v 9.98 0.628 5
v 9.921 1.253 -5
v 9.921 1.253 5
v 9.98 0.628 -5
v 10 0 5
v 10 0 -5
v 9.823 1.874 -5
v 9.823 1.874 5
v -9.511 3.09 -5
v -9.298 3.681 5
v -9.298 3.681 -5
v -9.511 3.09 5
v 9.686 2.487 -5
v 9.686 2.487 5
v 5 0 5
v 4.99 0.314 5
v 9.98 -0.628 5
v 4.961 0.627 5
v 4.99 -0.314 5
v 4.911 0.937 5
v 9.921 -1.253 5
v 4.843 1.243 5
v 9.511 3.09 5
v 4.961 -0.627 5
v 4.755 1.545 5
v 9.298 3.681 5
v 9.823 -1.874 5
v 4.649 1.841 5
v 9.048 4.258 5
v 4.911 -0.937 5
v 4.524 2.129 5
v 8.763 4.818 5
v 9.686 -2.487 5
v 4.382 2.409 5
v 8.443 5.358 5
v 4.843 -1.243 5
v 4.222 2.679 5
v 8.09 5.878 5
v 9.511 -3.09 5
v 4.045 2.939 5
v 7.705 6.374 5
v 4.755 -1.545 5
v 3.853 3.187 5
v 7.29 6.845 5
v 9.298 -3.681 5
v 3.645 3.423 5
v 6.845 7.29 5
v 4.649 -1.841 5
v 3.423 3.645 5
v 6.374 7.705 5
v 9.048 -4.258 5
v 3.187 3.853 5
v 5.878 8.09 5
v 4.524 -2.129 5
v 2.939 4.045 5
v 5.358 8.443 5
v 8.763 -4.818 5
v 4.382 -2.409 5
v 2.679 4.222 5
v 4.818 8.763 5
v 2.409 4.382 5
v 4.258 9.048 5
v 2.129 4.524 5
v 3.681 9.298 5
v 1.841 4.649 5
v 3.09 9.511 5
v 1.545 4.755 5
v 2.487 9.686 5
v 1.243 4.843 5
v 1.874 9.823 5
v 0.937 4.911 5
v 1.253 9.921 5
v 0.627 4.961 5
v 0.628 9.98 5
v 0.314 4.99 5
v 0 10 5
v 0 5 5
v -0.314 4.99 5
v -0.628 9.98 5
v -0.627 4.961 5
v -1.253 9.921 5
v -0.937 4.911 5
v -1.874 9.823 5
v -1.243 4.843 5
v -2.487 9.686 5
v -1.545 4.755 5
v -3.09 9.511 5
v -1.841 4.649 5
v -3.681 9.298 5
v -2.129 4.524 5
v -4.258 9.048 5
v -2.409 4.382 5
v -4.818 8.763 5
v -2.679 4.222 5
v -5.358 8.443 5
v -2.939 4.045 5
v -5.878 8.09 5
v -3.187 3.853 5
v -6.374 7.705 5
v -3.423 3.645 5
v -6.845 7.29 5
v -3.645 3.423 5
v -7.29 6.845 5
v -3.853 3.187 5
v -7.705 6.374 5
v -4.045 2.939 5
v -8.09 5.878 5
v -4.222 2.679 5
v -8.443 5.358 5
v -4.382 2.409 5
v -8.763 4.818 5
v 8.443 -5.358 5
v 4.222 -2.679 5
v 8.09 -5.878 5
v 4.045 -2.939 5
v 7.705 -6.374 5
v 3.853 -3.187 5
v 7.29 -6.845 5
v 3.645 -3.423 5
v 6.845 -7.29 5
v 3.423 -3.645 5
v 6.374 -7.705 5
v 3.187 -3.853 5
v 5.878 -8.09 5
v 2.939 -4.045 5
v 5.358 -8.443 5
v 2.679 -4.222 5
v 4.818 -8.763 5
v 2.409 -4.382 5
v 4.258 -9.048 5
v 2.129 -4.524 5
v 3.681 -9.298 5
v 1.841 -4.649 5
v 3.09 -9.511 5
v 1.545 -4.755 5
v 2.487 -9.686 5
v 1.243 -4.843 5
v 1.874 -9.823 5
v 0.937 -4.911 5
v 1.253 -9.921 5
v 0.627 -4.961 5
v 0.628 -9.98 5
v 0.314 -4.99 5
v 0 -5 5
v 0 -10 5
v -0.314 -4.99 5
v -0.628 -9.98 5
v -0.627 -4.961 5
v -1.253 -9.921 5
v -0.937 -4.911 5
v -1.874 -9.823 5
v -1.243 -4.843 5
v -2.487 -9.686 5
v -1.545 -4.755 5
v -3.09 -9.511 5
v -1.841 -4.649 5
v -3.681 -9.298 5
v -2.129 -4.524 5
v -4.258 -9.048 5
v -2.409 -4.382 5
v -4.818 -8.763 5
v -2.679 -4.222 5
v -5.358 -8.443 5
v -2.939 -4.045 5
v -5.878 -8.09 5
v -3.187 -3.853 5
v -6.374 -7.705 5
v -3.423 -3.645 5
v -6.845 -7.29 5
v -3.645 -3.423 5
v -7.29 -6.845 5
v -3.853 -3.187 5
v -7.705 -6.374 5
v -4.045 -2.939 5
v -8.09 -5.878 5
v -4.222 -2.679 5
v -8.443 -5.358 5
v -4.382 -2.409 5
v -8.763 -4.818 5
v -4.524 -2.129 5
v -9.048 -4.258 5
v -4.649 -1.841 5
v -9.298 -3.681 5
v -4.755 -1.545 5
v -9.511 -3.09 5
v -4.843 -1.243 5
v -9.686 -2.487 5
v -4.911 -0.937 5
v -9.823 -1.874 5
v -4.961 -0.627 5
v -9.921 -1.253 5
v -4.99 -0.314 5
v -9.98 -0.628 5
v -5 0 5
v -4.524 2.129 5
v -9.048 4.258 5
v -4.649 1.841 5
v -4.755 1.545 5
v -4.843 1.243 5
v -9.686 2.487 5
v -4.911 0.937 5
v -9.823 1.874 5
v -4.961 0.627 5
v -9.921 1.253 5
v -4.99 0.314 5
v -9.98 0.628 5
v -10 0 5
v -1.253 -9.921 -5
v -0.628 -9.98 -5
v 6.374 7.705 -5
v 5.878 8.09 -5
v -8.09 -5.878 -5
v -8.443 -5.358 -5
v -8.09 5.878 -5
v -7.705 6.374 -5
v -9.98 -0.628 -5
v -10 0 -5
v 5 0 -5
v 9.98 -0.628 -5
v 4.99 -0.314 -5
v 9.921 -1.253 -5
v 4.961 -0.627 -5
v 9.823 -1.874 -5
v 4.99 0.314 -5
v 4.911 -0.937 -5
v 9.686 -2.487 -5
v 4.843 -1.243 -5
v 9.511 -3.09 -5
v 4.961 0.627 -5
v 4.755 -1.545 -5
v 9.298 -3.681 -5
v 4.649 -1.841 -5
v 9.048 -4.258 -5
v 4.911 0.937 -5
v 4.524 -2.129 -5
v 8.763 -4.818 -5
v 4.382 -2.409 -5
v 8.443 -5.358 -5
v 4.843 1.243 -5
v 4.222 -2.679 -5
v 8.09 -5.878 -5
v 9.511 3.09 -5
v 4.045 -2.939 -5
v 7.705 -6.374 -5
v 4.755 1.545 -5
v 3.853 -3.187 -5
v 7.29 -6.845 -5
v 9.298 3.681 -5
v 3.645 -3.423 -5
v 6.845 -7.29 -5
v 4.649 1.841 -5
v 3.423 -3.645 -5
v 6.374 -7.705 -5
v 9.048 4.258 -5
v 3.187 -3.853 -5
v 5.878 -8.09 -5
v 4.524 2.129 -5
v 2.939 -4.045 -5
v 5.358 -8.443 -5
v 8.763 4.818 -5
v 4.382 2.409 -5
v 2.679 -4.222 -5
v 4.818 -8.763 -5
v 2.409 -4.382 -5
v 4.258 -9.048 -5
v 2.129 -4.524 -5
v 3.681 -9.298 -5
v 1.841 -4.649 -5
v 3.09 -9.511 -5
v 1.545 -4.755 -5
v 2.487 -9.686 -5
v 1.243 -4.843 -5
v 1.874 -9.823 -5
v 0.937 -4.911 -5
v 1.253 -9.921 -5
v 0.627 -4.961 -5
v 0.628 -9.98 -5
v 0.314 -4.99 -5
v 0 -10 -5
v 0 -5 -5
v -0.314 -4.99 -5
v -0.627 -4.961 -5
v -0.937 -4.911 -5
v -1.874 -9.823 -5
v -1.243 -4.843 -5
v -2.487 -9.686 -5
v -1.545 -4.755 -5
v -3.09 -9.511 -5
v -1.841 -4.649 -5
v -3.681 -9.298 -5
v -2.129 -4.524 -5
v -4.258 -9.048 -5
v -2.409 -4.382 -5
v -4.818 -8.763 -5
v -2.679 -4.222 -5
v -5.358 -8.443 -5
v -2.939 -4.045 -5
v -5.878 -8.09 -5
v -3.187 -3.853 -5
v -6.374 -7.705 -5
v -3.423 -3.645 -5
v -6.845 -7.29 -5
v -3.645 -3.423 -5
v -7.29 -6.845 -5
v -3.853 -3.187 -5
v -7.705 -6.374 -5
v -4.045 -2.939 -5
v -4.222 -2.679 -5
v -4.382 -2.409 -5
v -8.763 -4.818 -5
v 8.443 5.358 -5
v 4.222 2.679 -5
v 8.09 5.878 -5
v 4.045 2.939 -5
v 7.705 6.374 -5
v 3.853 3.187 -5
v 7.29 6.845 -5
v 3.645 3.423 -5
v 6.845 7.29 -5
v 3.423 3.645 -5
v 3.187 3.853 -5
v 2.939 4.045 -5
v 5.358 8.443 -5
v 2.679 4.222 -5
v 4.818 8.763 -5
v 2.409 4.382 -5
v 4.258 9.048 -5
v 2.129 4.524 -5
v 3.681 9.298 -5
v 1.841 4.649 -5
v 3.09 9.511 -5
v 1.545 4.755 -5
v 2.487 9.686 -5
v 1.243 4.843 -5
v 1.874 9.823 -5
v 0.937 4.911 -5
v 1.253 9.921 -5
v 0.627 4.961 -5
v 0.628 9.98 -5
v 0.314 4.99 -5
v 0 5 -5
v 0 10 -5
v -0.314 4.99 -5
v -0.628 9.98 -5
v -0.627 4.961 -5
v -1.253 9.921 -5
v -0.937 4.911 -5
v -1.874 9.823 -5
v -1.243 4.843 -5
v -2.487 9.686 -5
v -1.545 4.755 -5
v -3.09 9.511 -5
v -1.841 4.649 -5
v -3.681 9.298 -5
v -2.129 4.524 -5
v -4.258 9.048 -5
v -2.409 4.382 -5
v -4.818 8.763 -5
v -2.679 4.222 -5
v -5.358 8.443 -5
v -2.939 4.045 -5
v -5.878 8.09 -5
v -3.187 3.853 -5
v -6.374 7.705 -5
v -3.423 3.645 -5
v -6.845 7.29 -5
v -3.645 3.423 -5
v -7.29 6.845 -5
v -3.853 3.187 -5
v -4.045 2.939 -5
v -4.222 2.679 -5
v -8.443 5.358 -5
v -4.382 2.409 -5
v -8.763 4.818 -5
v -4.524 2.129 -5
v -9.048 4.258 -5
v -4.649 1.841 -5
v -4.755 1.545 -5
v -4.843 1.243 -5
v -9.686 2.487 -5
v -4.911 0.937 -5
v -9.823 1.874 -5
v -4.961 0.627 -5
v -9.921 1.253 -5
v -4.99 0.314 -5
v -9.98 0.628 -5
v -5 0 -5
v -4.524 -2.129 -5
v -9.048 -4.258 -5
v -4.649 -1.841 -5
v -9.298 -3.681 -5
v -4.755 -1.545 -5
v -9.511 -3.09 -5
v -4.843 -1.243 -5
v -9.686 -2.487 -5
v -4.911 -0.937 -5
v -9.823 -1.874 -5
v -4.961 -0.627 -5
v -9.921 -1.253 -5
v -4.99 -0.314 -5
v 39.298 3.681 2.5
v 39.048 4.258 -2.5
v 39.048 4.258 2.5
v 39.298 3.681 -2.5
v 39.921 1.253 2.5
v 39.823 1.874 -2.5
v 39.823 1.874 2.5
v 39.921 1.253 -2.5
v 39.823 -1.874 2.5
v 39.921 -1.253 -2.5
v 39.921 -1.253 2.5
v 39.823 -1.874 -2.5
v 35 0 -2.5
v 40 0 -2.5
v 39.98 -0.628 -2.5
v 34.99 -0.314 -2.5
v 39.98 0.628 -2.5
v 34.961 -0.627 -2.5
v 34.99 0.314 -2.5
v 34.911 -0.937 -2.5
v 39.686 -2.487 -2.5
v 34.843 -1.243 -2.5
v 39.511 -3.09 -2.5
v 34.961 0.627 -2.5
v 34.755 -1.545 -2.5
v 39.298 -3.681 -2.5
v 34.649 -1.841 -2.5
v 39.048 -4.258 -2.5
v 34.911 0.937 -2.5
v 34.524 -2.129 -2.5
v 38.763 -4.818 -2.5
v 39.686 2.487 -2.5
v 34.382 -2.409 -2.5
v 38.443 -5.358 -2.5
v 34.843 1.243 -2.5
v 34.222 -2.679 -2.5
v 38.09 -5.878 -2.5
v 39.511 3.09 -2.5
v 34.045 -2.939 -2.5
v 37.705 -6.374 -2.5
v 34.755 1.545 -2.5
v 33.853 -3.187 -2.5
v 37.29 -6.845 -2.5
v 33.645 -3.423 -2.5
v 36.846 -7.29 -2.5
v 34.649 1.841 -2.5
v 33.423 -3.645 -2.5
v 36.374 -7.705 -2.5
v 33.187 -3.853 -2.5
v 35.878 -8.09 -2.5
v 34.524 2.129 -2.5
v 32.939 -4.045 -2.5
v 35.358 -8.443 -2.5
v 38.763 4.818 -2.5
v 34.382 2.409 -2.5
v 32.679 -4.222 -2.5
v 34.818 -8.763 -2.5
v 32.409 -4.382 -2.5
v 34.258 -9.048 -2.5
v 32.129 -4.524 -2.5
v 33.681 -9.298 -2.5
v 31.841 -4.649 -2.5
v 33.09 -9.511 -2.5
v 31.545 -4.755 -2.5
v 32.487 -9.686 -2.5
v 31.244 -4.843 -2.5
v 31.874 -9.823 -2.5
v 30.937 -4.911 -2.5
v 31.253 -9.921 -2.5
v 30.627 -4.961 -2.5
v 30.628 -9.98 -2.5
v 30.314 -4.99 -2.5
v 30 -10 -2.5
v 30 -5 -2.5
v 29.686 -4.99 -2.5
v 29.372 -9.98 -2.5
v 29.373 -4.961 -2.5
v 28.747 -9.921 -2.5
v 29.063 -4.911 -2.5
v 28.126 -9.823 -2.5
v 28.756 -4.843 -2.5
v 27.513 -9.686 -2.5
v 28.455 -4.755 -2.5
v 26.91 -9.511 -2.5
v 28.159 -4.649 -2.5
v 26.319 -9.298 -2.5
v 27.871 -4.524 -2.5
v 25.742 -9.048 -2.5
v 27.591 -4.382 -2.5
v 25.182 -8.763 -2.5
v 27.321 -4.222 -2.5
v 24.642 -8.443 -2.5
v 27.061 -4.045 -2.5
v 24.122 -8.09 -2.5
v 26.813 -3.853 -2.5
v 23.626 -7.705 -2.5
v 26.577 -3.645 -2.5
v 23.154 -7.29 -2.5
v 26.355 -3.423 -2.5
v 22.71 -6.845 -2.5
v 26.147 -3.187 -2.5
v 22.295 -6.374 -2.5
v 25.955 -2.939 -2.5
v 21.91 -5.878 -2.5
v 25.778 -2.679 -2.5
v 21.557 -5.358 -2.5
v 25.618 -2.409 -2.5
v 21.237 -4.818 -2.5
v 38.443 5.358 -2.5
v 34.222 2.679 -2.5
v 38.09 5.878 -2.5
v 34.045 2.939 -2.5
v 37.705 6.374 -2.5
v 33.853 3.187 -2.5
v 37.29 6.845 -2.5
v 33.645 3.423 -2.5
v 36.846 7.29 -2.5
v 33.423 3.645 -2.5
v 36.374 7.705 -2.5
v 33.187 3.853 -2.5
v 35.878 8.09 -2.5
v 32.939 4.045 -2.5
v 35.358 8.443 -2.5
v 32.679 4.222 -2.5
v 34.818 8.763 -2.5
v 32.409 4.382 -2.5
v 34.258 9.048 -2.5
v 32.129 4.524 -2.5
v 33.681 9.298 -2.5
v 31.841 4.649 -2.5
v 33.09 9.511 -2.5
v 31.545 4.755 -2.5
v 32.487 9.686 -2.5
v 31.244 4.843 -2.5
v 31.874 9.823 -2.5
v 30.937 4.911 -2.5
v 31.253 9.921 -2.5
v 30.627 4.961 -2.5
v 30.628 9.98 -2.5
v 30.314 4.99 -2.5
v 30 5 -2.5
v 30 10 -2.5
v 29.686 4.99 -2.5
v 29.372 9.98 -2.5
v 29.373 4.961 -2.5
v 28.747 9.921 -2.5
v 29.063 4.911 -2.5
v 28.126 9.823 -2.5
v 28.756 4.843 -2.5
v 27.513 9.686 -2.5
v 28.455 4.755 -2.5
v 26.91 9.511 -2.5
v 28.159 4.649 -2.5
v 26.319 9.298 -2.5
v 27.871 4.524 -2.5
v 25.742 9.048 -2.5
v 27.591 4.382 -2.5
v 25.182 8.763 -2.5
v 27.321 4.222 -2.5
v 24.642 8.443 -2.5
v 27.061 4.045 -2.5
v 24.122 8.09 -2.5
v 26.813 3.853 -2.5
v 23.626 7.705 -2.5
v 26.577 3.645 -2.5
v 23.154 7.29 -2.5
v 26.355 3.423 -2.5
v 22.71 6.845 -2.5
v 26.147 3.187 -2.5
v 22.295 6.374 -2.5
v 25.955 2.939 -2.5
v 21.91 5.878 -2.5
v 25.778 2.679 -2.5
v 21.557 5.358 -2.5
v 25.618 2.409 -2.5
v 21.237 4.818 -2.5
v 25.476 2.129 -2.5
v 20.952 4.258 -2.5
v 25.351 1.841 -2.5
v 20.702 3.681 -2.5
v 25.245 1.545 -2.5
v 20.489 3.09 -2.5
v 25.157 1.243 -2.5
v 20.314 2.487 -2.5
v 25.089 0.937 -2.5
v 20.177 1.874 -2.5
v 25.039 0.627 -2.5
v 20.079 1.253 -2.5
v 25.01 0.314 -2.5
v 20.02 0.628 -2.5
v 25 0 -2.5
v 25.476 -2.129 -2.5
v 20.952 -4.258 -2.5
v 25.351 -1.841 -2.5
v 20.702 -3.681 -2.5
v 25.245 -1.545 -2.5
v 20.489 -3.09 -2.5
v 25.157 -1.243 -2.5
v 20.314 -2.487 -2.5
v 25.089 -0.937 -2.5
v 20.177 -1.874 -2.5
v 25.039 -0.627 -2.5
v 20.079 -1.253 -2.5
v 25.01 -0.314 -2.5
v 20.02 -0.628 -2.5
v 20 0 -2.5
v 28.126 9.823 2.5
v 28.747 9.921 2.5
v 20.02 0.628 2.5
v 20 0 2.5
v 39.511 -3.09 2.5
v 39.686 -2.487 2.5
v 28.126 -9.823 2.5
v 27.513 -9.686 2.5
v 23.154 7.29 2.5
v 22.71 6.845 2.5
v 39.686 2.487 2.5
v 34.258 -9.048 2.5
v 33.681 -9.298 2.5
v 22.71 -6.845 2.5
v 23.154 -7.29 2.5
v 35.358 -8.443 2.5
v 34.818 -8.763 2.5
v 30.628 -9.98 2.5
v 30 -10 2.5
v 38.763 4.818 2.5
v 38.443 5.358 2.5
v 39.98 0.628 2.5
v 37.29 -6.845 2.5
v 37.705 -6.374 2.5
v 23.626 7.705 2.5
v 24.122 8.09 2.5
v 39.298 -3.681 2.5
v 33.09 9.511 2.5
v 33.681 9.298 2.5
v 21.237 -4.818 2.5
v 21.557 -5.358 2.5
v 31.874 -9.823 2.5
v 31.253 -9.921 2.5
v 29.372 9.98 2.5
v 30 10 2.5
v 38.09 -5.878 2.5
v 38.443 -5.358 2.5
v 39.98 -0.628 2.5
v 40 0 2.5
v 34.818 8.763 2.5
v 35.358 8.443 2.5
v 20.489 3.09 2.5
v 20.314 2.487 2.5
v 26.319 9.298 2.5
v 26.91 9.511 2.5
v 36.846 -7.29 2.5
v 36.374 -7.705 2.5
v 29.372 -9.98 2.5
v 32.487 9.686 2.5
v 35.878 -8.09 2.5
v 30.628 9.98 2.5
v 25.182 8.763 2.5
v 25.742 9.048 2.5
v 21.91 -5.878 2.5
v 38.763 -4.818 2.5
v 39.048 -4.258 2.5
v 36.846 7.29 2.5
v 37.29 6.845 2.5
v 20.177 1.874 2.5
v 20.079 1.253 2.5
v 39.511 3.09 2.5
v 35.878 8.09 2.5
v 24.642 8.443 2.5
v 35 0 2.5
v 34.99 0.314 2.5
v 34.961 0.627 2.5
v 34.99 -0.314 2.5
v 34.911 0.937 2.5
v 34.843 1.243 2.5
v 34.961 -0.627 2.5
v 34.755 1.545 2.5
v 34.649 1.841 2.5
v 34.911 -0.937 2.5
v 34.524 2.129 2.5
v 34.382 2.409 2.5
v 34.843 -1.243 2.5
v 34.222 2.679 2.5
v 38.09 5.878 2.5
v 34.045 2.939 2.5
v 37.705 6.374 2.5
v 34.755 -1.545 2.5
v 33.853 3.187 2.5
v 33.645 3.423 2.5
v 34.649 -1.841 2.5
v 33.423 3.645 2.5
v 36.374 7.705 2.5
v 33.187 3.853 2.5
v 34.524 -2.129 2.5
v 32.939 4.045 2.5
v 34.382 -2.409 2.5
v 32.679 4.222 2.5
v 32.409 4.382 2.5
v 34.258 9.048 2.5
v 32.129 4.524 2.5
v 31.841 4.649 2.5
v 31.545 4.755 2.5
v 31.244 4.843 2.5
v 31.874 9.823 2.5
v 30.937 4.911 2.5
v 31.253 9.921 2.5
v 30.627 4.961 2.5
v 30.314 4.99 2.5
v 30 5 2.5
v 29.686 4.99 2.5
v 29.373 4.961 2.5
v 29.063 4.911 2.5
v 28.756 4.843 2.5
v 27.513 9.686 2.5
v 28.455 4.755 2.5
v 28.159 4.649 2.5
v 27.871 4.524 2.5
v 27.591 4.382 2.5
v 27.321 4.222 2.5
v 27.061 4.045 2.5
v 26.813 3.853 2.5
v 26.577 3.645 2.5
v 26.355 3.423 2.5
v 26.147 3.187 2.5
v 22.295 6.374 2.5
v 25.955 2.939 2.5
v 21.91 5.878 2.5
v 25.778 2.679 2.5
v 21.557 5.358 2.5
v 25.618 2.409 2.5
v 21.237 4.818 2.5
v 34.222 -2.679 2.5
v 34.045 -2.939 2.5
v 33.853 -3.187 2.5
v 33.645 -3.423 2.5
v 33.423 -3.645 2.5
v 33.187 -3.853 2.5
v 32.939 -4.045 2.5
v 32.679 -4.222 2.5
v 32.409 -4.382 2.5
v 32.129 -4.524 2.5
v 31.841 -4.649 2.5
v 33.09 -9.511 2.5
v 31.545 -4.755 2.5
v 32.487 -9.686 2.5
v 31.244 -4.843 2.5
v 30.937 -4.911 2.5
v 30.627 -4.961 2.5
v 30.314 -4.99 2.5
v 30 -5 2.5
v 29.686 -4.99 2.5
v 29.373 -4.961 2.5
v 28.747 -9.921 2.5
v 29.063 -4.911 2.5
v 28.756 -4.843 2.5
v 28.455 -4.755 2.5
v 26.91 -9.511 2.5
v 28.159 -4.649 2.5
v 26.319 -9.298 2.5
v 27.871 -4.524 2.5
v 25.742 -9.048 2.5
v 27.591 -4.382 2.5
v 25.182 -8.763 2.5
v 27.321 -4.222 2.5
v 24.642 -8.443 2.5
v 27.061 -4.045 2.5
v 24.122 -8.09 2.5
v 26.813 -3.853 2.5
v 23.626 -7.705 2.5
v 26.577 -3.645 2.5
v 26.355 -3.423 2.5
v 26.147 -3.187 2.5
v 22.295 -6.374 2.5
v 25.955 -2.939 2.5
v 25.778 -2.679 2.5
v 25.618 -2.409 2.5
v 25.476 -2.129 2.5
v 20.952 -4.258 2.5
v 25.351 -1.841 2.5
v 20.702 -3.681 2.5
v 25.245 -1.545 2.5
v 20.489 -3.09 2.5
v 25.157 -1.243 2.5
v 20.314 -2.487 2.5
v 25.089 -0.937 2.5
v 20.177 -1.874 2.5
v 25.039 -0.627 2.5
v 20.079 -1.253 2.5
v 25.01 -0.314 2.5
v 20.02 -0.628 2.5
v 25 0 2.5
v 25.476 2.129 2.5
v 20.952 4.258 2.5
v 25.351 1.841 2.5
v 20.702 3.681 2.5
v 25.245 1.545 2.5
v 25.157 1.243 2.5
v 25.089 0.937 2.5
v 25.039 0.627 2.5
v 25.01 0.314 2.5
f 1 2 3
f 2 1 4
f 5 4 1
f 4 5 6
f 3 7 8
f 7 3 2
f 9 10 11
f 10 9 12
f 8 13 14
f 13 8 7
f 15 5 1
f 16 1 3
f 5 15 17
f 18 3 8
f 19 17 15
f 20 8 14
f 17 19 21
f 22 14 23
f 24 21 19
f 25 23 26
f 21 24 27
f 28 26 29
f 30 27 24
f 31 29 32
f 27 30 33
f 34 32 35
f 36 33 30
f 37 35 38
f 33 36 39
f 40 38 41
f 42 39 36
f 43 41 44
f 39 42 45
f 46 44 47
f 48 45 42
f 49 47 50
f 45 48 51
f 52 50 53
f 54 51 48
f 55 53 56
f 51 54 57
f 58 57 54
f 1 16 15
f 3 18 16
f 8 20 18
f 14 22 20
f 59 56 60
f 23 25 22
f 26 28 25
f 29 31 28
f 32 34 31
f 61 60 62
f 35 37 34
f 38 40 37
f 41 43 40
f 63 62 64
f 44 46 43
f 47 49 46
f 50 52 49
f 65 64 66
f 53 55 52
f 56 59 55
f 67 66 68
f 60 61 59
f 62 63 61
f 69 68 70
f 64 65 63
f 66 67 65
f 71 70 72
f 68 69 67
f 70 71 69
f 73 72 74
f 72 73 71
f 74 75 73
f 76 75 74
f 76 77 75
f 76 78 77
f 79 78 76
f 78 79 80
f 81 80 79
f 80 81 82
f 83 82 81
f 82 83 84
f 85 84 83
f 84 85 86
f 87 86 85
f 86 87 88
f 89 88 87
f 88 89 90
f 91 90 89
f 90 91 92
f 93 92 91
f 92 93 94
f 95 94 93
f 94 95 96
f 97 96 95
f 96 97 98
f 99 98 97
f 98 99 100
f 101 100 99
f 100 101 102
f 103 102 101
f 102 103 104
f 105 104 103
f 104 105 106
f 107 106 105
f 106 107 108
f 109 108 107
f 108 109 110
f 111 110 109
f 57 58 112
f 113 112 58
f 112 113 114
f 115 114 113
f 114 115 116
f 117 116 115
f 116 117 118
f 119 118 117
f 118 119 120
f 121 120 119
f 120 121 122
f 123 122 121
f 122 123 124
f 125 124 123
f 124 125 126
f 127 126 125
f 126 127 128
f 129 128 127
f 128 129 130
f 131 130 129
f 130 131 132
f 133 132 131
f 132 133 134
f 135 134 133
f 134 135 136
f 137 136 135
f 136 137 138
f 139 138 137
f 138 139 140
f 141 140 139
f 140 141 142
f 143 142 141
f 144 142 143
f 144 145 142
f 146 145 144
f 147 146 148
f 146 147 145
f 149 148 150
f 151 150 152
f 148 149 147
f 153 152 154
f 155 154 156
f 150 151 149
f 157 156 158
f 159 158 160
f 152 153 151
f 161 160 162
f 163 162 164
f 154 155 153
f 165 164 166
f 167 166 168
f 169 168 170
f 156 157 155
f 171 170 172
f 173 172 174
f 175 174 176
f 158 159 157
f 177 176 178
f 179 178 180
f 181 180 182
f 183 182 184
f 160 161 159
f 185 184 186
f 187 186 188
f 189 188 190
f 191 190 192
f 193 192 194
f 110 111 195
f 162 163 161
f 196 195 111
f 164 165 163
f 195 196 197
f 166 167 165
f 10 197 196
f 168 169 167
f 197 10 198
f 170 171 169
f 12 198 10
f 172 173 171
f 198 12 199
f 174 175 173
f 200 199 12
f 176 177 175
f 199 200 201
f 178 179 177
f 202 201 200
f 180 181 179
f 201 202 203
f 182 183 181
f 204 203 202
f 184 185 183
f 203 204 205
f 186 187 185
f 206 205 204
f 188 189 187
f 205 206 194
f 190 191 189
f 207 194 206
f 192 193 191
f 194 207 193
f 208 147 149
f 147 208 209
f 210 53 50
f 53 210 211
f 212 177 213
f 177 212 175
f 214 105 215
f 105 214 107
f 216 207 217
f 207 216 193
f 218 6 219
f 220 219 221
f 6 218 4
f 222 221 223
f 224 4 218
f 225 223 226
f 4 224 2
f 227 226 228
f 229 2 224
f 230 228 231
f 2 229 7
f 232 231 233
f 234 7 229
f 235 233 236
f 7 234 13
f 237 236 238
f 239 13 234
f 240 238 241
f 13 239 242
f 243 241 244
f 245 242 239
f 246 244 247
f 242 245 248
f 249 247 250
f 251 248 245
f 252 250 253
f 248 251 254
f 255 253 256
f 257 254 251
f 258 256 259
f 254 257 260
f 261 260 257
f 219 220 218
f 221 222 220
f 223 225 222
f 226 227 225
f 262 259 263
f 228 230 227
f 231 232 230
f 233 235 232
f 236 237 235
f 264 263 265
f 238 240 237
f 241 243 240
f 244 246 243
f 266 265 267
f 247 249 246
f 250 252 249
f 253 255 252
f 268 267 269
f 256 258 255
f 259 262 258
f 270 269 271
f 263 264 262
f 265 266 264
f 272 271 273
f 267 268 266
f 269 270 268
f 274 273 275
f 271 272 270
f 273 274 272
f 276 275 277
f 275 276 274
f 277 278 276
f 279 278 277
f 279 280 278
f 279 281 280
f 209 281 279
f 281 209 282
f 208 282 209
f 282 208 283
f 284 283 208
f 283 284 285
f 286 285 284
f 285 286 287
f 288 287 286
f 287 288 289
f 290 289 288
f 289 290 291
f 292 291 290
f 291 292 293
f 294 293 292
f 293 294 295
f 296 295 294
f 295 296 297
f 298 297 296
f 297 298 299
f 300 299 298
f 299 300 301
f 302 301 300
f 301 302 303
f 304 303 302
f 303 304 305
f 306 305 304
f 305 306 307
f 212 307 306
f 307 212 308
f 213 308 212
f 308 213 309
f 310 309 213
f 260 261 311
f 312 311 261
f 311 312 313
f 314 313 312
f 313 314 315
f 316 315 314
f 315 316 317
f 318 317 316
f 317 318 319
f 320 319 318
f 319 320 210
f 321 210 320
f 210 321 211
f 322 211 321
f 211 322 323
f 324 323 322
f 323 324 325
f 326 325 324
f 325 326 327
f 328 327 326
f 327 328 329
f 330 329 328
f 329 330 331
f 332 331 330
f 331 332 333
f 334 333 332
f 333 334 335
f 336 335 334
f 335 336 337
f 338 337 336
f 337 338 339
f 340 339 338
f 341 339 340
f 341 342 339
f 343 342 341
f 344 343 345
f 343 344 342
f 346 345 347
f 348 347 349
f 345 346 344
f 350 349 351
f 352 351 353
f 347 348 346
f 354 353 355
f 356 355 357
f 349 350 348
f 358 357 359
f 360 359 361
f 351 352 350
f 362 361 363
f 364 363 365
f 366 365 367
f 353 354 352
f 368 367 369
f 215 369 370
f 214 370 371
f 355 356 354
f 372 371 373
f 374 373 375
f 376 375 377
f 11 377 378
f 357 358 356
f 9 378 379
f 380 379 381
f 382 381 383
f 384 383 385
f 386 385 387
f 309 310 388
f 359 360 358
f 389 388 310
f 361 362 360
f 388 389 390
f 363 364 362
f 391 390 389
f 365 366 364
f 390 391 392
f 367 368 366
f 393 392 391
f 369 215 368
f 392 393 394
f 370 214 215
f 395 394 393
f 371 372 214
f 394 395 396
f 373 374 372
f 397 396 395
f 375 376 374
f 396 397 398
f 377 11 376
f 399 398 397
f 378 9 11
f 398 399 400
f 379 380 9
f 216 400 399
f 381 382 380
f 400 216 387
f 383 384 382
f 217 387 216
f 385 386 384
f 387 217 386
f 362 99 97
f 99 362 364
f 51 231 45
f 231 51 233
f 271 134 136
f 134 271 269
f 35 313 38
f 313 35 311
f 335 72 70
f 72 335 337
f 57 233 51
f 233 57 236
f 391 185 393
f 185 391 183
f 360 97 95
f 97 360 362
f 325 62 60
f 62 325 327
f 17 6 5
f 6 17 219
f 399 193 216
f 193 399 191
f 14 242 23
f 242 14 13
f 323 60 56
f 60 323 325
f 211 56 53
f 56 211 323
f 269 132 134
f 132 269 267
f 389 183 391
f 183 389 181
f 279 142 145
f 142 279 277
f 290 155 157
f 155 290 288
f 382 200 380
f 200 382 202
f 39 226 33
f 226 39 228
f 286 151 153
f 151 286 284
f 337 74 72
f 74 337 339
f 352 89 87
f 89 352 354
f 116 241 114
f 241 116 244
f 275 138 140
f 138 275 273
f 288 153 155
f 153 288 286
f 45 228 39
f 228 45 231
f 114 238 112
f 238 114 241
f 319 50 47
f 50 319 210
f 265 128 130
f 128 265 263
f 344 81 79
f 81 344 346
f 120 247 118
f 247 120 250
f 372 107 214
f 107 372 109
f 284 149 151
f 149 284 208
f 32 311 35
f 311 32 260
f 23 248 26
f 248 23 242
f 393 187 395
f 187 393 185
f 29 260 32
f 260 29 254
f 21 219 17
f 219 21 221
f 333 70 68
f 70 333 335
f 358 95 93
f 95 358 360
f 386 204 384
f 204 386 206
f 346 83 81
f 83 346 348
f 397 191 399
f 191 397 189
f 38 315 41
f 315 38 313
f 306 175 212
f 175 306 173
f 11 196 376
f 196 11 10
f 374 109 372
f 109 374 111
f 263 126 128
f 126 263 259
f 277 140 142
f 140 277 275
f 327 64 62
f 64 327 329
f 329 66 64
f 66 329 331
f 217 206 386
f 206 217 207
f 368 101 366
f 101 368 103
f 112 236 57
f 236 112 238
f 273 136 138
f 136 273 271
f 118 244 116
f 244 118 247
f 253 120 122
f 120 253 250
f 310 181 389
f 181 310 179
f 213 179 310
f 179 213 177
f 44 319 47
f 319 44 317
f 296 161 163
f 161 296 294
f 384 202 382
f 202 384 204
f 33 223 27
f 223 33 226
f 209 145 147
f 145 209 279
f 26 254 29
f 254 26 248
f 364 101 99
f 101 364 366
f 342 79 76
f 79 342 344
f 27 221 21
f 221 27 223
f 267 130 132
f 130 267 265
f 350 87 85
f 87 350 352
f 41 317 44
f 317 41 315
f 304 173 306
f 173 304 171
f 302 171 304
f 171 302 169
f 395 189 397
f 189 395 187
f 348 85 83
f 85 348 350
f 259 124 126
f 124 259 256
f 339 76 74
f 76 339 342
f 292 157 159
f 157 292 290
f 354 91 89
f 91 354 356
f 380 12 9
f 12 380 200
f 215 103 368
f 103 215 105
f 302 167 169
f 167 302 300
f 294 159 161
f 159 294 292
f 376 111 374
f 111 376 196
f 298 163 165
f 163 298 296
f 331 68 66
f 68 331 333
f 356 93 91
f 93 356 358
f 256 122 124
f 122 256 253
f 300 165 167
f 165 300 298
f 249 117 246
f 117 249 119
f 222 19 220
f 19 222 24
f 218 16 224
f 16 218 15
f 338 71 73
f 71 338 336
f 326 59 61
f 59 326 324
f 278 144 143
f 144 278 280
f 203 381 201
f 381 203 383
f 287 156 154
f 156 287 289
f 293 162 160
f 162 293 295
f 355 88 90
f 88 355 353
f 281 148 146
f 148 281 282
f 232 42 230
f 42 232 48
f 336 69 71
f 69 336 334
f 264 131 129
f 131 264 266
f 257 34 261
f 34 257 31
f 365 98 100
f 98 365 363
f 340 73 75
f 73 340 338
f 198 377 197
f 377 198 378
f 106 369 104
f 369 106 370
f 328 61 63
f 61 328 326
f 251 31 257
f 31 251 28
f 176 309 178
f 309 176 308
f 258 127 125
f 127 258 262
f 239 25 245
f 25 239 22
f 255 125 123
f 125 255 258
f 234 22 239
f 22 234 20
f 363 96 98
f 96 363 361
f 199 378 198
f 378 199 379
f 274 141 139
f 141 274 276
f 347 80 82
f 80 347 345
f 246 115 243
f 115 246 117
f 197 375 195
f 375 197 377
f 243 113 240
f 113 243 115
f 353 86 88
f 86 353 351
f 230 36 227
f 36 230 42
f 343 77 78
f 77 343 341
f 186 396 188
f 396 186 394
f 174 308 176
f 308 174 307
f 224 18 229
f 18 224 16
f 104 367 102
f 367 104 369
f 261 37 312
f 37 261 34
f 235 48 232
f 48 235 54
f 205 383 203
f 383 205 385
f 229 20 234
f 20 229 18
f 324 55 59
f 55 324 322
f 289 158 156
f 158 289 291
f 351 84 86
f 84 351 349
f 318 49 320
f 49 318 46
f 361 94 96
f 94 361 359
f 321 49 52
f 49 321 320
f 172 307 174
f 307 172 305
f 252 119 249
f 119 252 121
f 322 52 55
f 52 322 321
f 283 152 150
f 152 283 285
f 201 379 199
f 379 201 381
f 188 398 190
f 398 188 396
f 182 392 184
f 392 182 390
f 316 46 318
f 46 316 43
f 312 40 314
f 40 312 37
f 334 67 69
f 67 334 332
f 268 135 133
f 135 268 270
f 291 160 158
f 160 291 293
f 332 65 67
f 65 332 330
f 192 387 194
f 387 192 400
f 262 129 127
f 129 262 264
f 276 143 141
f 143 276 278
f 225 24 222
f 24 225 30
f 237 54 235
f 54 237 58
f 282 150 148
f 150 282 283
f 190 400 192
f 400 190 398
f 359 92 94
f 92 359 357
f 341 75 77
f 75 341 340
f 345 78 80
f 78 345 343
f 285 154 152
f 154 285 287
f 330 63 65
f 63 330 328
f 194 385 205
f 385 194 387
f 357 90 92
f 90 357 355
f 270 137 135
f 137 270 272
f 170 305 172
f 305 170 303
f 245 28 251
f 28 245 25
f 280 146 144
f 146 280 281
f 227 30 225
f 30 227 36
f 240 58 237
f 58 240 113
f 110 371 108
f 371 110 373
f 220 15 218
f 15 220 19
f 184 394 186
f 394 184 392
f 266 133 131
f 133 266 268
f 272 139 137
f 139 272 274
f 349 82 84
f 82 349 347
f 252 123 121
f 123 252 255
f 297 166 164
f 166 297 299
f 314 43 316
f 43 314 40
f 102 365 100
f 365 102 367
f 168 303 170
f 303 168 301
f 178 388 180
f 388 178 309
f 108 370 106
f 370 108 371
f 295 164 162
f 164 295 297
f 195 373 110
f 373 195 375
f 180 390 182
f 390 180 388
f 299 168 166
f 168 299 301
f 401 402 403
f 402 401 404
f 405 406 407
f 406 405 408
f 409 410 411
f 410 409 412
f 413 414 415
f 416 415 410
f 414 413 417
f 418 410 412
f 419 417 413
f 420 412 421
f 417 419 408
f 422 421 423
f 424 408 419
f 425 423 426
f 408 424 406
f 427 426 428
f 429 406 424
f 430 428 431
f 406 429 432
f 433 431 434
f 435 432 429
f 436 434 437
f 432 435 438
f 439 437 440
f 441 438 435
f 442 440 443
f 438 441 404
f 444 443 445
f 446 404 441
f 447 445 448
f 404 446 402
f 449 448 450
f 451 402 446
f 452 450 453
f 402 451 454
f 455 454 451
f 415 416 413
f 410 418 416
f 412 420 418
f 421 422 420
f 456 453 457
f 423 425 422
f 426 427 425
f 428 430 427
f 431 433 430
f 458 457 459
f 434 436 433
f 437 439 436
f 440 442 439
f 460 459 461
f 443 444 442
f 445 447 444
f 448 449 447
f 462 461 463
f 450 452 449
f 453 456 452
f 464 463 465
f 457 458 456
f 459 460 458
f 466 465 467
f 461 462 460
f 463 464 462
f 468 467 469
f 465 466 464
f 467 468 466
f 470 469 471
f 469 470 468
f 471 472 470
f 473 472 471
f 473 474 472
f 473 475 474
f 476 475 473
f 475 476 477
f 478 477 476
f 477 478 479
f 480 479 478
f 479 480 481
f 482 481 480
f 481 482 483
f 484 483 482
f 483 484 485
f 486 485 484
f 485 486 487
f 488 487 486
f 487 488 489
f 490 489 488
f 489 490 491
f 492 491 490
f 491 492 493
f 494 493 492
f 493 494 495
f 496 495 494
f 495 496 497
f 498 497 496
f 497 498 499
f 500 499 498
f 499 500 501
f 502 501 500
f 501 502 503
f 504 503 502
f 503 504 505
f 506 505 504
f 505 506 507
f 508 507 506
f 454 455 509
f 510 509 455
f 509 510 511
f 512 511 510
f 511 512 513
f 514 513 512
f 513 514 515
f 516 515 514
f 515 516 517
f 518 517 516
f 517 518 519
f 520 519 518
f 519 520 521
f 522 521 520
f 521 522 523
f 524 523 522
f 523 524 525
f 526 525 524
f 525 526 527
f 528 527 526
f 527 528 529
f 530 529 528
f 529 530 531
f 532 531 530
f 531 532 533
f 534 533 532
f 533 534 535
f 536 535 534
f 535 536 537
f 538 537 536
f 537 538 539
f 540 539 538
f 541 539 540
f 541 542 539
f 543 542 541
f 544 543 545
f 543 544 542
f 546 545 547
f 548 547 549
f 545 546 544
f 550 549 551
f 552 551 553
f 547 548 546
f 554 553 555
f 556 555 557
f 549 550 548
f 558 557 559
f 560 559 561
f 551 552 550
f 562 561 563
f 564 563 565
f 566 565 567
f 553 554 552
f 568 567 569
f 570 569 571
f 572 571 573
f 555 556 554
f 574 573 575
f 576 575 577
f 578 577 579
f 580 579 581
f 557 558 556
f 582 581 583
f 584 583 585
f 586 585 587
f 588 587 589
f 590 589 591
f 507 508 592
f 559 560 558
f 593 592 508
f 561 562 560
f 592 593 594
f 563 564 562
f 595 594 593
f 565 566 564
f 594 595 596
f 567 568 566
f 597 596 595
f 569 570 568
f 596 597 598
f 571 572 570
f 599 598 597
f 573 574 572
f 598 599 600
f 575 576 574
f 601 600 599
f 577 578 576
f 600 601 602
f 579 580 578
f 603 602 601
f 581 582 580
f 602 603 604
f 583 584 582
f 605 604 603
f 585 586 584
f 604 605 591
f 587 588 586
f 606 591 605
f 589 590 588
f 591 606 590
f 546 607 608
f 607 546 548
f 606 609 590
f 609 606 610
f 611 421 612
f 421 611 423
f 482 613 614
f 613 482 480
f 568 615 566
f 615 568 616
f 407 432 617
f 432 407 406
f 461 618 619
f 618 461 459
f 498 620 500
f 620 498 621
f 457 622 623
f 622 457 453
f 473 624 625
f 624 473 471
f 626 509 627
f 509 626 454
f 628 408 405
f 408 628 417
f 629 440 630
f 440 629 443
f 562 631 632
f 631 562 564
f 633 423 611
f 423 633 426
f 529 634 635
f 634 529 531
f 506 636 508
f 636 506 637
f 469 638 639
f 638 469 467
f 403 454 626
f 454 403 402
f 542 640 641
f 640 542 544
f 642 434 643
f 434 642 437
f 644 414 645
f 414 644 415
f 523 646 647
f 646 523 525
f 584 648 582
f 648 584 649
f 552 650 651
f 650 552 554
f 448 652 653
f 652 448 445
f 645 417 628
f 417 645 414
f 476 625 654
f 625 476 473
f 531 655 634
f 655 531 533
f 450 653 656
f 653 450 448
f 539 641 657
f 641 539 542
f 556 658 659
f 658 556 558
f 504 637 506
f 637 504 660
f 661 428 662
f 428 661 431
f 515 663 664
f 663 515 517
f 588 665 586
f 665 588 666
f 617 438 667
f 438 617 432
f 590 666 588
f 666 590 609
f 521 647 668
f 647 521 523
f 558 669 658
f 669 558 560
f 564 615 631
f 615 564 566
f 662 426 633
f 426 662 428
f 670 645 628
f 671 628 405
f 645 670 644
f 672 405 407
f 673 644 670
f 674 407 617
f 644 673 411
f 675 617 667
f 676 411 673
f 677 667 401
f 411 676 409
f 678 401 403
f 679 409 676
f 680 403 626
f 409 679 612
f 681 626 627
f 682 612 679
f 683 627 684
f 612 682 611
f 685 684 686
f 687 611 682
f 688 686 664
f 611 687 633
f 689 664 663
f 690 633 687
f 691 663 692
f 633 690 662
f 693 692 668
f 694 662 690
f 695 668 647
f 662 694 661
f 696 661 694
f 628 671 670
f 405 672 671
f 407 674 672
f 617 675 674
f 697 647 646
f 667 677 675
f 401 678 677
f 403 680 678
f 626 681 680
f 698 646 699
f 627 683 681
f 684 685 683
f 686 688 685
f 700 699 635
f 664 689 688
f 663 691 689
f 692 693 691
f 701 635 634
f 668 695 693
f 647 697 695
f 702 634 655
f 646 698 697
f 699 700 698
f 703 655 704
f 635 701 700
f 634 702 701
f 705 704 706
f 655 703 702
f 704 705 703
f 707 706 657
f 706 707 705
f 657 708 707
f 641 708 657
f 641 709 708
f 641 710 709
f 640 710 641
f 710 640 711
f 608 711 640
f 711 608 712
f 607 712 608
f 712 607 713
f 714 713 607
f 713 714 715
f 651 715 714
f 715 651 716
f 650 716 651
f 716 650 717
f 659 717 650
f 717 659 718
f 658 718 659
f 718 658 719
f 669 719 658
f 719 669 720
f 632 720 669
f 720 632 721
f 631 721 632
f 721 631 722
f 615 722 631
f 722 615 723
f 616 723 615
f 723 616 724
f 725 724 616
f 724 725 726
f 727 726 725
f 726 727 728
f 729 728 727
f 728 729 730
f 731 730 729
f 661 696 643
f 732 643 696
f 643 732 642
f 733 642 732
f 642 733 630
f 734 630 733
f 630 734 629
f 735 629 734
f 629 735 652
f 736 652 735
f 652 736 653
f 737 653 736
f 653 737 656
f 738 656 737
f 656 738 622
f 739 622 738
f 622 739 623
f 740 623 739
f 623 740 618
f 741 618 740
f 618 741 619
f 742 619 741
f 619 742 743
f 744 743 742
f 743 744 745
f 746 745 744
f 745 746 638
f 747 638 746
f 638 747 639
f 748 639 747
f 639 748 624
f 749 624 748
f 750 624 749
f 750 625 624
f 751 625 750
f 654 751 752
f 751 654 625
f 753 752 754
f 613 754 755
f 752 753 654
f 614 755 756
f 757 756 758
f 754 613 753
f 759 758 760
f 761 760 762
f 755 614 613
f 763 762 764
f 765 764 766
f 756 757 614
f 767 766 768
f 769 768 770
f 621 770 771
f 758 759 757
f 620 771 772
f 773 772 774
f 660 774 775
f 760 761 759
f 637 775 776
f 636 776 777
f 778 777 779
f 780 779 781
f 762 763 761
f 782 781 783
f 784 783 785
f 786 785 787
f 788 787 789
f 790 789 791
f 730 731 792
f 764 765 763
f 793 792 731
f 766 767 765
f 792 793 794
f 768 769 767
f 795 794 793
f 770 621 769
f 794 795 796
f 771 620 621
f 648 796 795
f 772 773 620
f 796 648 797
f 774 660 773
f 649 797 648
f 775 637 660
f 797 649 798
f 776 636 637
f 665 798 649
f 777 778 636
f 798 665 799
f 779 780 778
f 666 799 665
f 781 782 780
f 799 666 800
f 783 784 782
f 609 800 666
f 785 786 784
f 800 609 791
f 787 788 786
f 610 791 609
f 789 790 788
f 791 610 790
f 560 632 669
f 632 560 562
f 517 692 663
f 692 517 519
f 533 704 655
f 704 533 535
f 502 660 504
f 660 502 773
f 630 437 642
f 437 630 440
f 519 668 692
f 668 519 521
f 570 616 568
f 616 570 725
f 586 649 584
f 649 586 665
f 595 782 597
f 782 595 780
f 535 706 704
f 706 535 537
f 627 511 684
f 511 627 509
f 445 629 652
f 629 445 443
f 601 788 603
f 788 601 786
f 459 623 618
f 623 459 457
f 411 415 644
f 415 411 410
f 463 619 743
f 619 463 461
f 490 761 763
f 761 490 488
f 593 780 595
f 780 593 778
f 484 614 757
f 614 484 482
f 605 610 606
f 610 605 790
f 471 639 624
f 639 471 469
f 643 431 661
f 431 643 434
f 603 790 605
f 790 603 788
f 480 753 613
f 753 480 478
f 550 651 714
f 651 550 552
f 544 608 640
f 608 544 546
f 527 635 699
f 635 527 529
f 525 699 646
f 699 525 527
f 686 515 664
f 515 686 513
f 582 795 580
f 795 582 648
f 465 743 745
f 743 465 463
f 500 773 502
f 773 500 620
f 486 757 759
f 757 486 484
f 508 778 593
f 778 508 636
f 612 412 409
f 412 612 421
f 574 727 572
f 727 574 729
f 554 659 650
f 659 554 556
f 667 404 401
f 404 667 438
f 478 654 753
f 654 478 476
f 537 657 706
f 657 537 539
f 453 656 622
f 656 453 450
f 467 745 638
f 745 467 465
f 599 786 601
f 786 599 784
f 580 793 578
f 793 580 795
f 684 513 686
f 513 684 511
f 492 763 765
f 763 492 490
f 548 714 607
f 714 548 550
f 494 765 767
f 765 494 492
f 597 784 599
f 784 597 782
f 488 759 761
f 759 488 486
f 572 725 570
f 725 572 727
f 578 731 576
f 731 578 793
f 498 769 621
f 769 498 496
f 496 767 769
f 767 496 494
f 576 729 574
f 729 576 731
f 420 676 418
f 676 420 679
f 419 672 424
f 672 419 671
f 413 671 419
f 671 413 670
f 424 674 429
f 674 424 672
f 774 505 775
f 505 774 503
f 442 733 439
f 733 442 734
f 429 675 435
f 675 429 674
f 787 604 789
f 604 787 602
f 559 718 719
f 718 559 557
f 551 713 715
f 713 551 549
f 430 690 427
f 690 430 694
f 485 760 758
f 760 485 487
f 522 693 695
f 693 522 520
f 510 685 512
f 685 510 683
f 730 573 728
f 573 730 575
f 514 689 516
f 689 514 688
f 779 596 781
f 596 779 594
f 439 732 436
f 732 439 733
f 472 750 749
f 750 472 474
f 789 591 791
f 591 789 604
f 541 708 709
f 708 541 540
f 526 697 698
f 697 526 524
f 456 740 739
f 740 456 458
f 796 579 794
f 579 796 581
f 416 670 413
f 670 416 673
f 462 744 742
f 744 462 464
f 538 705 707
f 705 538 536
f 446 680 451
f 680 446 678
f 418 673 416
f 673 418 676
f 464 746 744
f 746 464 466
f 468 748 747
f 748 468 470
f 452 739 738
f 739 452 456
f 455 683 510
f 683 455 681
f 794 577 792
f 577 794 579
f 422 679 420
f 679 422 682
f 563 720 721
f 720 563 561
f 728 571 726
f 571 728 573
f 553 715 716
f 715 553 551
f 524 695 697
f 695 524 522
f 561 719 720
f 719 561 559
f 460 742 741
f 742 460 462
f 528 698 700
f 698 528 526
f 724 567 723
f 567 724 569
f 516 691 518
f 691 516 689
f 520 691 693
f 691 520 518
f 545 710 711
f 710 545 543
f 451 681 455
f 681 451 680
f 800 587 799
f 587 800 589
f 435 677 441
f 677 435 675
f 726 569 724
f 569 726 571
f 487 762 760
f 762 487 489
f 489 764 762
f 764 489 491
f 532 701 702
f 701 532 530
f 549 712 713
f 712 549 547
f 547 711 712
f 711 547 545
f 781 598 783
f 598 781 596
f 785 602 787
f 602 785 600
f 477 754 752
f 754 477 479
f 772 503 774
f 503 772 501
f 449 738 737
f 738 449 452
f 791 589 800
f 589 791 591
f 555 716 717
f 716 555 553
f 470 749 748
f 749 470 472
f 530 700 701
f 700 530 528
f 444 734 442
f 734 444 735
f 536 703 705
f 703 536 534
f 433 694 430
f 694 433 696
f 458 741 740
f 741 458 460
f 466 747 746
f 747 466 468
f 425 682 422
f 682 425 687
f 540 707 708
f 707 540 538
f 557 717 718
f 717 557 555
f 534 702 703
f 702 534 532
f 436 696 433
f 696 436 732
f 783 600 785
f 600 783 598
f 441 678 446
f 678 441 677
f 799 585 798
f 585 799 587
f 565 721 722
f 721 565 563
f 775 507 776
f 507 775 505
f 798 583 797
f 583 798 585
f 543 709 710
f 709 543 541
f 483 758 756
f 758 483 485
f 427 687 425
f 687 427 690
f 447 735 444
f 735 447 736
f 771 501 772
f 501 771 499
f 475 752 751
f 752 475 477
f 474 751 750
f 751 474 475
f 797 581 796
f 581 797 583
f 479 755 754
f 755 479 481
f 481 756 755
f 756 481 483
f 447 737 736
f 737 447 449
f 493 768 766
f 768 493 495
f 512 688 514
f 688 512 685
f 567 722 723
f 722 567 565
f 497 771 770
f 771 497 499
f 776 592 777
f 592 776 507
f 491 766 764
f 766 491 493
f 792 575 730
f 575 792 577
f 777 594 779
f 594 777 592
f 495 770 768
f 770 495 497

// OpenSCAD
$fn = 100;

difference() {
	cylinder(r = 10, h = 10, center = true);
	cylinder(r = 5, h = 11, center = true);
}

translate([30,0,0]) {
	difference() {
		cylinder(r = 10, h = 5, center = true);
		cylinder(r = 5, h = 6, center = true);
	}
}
